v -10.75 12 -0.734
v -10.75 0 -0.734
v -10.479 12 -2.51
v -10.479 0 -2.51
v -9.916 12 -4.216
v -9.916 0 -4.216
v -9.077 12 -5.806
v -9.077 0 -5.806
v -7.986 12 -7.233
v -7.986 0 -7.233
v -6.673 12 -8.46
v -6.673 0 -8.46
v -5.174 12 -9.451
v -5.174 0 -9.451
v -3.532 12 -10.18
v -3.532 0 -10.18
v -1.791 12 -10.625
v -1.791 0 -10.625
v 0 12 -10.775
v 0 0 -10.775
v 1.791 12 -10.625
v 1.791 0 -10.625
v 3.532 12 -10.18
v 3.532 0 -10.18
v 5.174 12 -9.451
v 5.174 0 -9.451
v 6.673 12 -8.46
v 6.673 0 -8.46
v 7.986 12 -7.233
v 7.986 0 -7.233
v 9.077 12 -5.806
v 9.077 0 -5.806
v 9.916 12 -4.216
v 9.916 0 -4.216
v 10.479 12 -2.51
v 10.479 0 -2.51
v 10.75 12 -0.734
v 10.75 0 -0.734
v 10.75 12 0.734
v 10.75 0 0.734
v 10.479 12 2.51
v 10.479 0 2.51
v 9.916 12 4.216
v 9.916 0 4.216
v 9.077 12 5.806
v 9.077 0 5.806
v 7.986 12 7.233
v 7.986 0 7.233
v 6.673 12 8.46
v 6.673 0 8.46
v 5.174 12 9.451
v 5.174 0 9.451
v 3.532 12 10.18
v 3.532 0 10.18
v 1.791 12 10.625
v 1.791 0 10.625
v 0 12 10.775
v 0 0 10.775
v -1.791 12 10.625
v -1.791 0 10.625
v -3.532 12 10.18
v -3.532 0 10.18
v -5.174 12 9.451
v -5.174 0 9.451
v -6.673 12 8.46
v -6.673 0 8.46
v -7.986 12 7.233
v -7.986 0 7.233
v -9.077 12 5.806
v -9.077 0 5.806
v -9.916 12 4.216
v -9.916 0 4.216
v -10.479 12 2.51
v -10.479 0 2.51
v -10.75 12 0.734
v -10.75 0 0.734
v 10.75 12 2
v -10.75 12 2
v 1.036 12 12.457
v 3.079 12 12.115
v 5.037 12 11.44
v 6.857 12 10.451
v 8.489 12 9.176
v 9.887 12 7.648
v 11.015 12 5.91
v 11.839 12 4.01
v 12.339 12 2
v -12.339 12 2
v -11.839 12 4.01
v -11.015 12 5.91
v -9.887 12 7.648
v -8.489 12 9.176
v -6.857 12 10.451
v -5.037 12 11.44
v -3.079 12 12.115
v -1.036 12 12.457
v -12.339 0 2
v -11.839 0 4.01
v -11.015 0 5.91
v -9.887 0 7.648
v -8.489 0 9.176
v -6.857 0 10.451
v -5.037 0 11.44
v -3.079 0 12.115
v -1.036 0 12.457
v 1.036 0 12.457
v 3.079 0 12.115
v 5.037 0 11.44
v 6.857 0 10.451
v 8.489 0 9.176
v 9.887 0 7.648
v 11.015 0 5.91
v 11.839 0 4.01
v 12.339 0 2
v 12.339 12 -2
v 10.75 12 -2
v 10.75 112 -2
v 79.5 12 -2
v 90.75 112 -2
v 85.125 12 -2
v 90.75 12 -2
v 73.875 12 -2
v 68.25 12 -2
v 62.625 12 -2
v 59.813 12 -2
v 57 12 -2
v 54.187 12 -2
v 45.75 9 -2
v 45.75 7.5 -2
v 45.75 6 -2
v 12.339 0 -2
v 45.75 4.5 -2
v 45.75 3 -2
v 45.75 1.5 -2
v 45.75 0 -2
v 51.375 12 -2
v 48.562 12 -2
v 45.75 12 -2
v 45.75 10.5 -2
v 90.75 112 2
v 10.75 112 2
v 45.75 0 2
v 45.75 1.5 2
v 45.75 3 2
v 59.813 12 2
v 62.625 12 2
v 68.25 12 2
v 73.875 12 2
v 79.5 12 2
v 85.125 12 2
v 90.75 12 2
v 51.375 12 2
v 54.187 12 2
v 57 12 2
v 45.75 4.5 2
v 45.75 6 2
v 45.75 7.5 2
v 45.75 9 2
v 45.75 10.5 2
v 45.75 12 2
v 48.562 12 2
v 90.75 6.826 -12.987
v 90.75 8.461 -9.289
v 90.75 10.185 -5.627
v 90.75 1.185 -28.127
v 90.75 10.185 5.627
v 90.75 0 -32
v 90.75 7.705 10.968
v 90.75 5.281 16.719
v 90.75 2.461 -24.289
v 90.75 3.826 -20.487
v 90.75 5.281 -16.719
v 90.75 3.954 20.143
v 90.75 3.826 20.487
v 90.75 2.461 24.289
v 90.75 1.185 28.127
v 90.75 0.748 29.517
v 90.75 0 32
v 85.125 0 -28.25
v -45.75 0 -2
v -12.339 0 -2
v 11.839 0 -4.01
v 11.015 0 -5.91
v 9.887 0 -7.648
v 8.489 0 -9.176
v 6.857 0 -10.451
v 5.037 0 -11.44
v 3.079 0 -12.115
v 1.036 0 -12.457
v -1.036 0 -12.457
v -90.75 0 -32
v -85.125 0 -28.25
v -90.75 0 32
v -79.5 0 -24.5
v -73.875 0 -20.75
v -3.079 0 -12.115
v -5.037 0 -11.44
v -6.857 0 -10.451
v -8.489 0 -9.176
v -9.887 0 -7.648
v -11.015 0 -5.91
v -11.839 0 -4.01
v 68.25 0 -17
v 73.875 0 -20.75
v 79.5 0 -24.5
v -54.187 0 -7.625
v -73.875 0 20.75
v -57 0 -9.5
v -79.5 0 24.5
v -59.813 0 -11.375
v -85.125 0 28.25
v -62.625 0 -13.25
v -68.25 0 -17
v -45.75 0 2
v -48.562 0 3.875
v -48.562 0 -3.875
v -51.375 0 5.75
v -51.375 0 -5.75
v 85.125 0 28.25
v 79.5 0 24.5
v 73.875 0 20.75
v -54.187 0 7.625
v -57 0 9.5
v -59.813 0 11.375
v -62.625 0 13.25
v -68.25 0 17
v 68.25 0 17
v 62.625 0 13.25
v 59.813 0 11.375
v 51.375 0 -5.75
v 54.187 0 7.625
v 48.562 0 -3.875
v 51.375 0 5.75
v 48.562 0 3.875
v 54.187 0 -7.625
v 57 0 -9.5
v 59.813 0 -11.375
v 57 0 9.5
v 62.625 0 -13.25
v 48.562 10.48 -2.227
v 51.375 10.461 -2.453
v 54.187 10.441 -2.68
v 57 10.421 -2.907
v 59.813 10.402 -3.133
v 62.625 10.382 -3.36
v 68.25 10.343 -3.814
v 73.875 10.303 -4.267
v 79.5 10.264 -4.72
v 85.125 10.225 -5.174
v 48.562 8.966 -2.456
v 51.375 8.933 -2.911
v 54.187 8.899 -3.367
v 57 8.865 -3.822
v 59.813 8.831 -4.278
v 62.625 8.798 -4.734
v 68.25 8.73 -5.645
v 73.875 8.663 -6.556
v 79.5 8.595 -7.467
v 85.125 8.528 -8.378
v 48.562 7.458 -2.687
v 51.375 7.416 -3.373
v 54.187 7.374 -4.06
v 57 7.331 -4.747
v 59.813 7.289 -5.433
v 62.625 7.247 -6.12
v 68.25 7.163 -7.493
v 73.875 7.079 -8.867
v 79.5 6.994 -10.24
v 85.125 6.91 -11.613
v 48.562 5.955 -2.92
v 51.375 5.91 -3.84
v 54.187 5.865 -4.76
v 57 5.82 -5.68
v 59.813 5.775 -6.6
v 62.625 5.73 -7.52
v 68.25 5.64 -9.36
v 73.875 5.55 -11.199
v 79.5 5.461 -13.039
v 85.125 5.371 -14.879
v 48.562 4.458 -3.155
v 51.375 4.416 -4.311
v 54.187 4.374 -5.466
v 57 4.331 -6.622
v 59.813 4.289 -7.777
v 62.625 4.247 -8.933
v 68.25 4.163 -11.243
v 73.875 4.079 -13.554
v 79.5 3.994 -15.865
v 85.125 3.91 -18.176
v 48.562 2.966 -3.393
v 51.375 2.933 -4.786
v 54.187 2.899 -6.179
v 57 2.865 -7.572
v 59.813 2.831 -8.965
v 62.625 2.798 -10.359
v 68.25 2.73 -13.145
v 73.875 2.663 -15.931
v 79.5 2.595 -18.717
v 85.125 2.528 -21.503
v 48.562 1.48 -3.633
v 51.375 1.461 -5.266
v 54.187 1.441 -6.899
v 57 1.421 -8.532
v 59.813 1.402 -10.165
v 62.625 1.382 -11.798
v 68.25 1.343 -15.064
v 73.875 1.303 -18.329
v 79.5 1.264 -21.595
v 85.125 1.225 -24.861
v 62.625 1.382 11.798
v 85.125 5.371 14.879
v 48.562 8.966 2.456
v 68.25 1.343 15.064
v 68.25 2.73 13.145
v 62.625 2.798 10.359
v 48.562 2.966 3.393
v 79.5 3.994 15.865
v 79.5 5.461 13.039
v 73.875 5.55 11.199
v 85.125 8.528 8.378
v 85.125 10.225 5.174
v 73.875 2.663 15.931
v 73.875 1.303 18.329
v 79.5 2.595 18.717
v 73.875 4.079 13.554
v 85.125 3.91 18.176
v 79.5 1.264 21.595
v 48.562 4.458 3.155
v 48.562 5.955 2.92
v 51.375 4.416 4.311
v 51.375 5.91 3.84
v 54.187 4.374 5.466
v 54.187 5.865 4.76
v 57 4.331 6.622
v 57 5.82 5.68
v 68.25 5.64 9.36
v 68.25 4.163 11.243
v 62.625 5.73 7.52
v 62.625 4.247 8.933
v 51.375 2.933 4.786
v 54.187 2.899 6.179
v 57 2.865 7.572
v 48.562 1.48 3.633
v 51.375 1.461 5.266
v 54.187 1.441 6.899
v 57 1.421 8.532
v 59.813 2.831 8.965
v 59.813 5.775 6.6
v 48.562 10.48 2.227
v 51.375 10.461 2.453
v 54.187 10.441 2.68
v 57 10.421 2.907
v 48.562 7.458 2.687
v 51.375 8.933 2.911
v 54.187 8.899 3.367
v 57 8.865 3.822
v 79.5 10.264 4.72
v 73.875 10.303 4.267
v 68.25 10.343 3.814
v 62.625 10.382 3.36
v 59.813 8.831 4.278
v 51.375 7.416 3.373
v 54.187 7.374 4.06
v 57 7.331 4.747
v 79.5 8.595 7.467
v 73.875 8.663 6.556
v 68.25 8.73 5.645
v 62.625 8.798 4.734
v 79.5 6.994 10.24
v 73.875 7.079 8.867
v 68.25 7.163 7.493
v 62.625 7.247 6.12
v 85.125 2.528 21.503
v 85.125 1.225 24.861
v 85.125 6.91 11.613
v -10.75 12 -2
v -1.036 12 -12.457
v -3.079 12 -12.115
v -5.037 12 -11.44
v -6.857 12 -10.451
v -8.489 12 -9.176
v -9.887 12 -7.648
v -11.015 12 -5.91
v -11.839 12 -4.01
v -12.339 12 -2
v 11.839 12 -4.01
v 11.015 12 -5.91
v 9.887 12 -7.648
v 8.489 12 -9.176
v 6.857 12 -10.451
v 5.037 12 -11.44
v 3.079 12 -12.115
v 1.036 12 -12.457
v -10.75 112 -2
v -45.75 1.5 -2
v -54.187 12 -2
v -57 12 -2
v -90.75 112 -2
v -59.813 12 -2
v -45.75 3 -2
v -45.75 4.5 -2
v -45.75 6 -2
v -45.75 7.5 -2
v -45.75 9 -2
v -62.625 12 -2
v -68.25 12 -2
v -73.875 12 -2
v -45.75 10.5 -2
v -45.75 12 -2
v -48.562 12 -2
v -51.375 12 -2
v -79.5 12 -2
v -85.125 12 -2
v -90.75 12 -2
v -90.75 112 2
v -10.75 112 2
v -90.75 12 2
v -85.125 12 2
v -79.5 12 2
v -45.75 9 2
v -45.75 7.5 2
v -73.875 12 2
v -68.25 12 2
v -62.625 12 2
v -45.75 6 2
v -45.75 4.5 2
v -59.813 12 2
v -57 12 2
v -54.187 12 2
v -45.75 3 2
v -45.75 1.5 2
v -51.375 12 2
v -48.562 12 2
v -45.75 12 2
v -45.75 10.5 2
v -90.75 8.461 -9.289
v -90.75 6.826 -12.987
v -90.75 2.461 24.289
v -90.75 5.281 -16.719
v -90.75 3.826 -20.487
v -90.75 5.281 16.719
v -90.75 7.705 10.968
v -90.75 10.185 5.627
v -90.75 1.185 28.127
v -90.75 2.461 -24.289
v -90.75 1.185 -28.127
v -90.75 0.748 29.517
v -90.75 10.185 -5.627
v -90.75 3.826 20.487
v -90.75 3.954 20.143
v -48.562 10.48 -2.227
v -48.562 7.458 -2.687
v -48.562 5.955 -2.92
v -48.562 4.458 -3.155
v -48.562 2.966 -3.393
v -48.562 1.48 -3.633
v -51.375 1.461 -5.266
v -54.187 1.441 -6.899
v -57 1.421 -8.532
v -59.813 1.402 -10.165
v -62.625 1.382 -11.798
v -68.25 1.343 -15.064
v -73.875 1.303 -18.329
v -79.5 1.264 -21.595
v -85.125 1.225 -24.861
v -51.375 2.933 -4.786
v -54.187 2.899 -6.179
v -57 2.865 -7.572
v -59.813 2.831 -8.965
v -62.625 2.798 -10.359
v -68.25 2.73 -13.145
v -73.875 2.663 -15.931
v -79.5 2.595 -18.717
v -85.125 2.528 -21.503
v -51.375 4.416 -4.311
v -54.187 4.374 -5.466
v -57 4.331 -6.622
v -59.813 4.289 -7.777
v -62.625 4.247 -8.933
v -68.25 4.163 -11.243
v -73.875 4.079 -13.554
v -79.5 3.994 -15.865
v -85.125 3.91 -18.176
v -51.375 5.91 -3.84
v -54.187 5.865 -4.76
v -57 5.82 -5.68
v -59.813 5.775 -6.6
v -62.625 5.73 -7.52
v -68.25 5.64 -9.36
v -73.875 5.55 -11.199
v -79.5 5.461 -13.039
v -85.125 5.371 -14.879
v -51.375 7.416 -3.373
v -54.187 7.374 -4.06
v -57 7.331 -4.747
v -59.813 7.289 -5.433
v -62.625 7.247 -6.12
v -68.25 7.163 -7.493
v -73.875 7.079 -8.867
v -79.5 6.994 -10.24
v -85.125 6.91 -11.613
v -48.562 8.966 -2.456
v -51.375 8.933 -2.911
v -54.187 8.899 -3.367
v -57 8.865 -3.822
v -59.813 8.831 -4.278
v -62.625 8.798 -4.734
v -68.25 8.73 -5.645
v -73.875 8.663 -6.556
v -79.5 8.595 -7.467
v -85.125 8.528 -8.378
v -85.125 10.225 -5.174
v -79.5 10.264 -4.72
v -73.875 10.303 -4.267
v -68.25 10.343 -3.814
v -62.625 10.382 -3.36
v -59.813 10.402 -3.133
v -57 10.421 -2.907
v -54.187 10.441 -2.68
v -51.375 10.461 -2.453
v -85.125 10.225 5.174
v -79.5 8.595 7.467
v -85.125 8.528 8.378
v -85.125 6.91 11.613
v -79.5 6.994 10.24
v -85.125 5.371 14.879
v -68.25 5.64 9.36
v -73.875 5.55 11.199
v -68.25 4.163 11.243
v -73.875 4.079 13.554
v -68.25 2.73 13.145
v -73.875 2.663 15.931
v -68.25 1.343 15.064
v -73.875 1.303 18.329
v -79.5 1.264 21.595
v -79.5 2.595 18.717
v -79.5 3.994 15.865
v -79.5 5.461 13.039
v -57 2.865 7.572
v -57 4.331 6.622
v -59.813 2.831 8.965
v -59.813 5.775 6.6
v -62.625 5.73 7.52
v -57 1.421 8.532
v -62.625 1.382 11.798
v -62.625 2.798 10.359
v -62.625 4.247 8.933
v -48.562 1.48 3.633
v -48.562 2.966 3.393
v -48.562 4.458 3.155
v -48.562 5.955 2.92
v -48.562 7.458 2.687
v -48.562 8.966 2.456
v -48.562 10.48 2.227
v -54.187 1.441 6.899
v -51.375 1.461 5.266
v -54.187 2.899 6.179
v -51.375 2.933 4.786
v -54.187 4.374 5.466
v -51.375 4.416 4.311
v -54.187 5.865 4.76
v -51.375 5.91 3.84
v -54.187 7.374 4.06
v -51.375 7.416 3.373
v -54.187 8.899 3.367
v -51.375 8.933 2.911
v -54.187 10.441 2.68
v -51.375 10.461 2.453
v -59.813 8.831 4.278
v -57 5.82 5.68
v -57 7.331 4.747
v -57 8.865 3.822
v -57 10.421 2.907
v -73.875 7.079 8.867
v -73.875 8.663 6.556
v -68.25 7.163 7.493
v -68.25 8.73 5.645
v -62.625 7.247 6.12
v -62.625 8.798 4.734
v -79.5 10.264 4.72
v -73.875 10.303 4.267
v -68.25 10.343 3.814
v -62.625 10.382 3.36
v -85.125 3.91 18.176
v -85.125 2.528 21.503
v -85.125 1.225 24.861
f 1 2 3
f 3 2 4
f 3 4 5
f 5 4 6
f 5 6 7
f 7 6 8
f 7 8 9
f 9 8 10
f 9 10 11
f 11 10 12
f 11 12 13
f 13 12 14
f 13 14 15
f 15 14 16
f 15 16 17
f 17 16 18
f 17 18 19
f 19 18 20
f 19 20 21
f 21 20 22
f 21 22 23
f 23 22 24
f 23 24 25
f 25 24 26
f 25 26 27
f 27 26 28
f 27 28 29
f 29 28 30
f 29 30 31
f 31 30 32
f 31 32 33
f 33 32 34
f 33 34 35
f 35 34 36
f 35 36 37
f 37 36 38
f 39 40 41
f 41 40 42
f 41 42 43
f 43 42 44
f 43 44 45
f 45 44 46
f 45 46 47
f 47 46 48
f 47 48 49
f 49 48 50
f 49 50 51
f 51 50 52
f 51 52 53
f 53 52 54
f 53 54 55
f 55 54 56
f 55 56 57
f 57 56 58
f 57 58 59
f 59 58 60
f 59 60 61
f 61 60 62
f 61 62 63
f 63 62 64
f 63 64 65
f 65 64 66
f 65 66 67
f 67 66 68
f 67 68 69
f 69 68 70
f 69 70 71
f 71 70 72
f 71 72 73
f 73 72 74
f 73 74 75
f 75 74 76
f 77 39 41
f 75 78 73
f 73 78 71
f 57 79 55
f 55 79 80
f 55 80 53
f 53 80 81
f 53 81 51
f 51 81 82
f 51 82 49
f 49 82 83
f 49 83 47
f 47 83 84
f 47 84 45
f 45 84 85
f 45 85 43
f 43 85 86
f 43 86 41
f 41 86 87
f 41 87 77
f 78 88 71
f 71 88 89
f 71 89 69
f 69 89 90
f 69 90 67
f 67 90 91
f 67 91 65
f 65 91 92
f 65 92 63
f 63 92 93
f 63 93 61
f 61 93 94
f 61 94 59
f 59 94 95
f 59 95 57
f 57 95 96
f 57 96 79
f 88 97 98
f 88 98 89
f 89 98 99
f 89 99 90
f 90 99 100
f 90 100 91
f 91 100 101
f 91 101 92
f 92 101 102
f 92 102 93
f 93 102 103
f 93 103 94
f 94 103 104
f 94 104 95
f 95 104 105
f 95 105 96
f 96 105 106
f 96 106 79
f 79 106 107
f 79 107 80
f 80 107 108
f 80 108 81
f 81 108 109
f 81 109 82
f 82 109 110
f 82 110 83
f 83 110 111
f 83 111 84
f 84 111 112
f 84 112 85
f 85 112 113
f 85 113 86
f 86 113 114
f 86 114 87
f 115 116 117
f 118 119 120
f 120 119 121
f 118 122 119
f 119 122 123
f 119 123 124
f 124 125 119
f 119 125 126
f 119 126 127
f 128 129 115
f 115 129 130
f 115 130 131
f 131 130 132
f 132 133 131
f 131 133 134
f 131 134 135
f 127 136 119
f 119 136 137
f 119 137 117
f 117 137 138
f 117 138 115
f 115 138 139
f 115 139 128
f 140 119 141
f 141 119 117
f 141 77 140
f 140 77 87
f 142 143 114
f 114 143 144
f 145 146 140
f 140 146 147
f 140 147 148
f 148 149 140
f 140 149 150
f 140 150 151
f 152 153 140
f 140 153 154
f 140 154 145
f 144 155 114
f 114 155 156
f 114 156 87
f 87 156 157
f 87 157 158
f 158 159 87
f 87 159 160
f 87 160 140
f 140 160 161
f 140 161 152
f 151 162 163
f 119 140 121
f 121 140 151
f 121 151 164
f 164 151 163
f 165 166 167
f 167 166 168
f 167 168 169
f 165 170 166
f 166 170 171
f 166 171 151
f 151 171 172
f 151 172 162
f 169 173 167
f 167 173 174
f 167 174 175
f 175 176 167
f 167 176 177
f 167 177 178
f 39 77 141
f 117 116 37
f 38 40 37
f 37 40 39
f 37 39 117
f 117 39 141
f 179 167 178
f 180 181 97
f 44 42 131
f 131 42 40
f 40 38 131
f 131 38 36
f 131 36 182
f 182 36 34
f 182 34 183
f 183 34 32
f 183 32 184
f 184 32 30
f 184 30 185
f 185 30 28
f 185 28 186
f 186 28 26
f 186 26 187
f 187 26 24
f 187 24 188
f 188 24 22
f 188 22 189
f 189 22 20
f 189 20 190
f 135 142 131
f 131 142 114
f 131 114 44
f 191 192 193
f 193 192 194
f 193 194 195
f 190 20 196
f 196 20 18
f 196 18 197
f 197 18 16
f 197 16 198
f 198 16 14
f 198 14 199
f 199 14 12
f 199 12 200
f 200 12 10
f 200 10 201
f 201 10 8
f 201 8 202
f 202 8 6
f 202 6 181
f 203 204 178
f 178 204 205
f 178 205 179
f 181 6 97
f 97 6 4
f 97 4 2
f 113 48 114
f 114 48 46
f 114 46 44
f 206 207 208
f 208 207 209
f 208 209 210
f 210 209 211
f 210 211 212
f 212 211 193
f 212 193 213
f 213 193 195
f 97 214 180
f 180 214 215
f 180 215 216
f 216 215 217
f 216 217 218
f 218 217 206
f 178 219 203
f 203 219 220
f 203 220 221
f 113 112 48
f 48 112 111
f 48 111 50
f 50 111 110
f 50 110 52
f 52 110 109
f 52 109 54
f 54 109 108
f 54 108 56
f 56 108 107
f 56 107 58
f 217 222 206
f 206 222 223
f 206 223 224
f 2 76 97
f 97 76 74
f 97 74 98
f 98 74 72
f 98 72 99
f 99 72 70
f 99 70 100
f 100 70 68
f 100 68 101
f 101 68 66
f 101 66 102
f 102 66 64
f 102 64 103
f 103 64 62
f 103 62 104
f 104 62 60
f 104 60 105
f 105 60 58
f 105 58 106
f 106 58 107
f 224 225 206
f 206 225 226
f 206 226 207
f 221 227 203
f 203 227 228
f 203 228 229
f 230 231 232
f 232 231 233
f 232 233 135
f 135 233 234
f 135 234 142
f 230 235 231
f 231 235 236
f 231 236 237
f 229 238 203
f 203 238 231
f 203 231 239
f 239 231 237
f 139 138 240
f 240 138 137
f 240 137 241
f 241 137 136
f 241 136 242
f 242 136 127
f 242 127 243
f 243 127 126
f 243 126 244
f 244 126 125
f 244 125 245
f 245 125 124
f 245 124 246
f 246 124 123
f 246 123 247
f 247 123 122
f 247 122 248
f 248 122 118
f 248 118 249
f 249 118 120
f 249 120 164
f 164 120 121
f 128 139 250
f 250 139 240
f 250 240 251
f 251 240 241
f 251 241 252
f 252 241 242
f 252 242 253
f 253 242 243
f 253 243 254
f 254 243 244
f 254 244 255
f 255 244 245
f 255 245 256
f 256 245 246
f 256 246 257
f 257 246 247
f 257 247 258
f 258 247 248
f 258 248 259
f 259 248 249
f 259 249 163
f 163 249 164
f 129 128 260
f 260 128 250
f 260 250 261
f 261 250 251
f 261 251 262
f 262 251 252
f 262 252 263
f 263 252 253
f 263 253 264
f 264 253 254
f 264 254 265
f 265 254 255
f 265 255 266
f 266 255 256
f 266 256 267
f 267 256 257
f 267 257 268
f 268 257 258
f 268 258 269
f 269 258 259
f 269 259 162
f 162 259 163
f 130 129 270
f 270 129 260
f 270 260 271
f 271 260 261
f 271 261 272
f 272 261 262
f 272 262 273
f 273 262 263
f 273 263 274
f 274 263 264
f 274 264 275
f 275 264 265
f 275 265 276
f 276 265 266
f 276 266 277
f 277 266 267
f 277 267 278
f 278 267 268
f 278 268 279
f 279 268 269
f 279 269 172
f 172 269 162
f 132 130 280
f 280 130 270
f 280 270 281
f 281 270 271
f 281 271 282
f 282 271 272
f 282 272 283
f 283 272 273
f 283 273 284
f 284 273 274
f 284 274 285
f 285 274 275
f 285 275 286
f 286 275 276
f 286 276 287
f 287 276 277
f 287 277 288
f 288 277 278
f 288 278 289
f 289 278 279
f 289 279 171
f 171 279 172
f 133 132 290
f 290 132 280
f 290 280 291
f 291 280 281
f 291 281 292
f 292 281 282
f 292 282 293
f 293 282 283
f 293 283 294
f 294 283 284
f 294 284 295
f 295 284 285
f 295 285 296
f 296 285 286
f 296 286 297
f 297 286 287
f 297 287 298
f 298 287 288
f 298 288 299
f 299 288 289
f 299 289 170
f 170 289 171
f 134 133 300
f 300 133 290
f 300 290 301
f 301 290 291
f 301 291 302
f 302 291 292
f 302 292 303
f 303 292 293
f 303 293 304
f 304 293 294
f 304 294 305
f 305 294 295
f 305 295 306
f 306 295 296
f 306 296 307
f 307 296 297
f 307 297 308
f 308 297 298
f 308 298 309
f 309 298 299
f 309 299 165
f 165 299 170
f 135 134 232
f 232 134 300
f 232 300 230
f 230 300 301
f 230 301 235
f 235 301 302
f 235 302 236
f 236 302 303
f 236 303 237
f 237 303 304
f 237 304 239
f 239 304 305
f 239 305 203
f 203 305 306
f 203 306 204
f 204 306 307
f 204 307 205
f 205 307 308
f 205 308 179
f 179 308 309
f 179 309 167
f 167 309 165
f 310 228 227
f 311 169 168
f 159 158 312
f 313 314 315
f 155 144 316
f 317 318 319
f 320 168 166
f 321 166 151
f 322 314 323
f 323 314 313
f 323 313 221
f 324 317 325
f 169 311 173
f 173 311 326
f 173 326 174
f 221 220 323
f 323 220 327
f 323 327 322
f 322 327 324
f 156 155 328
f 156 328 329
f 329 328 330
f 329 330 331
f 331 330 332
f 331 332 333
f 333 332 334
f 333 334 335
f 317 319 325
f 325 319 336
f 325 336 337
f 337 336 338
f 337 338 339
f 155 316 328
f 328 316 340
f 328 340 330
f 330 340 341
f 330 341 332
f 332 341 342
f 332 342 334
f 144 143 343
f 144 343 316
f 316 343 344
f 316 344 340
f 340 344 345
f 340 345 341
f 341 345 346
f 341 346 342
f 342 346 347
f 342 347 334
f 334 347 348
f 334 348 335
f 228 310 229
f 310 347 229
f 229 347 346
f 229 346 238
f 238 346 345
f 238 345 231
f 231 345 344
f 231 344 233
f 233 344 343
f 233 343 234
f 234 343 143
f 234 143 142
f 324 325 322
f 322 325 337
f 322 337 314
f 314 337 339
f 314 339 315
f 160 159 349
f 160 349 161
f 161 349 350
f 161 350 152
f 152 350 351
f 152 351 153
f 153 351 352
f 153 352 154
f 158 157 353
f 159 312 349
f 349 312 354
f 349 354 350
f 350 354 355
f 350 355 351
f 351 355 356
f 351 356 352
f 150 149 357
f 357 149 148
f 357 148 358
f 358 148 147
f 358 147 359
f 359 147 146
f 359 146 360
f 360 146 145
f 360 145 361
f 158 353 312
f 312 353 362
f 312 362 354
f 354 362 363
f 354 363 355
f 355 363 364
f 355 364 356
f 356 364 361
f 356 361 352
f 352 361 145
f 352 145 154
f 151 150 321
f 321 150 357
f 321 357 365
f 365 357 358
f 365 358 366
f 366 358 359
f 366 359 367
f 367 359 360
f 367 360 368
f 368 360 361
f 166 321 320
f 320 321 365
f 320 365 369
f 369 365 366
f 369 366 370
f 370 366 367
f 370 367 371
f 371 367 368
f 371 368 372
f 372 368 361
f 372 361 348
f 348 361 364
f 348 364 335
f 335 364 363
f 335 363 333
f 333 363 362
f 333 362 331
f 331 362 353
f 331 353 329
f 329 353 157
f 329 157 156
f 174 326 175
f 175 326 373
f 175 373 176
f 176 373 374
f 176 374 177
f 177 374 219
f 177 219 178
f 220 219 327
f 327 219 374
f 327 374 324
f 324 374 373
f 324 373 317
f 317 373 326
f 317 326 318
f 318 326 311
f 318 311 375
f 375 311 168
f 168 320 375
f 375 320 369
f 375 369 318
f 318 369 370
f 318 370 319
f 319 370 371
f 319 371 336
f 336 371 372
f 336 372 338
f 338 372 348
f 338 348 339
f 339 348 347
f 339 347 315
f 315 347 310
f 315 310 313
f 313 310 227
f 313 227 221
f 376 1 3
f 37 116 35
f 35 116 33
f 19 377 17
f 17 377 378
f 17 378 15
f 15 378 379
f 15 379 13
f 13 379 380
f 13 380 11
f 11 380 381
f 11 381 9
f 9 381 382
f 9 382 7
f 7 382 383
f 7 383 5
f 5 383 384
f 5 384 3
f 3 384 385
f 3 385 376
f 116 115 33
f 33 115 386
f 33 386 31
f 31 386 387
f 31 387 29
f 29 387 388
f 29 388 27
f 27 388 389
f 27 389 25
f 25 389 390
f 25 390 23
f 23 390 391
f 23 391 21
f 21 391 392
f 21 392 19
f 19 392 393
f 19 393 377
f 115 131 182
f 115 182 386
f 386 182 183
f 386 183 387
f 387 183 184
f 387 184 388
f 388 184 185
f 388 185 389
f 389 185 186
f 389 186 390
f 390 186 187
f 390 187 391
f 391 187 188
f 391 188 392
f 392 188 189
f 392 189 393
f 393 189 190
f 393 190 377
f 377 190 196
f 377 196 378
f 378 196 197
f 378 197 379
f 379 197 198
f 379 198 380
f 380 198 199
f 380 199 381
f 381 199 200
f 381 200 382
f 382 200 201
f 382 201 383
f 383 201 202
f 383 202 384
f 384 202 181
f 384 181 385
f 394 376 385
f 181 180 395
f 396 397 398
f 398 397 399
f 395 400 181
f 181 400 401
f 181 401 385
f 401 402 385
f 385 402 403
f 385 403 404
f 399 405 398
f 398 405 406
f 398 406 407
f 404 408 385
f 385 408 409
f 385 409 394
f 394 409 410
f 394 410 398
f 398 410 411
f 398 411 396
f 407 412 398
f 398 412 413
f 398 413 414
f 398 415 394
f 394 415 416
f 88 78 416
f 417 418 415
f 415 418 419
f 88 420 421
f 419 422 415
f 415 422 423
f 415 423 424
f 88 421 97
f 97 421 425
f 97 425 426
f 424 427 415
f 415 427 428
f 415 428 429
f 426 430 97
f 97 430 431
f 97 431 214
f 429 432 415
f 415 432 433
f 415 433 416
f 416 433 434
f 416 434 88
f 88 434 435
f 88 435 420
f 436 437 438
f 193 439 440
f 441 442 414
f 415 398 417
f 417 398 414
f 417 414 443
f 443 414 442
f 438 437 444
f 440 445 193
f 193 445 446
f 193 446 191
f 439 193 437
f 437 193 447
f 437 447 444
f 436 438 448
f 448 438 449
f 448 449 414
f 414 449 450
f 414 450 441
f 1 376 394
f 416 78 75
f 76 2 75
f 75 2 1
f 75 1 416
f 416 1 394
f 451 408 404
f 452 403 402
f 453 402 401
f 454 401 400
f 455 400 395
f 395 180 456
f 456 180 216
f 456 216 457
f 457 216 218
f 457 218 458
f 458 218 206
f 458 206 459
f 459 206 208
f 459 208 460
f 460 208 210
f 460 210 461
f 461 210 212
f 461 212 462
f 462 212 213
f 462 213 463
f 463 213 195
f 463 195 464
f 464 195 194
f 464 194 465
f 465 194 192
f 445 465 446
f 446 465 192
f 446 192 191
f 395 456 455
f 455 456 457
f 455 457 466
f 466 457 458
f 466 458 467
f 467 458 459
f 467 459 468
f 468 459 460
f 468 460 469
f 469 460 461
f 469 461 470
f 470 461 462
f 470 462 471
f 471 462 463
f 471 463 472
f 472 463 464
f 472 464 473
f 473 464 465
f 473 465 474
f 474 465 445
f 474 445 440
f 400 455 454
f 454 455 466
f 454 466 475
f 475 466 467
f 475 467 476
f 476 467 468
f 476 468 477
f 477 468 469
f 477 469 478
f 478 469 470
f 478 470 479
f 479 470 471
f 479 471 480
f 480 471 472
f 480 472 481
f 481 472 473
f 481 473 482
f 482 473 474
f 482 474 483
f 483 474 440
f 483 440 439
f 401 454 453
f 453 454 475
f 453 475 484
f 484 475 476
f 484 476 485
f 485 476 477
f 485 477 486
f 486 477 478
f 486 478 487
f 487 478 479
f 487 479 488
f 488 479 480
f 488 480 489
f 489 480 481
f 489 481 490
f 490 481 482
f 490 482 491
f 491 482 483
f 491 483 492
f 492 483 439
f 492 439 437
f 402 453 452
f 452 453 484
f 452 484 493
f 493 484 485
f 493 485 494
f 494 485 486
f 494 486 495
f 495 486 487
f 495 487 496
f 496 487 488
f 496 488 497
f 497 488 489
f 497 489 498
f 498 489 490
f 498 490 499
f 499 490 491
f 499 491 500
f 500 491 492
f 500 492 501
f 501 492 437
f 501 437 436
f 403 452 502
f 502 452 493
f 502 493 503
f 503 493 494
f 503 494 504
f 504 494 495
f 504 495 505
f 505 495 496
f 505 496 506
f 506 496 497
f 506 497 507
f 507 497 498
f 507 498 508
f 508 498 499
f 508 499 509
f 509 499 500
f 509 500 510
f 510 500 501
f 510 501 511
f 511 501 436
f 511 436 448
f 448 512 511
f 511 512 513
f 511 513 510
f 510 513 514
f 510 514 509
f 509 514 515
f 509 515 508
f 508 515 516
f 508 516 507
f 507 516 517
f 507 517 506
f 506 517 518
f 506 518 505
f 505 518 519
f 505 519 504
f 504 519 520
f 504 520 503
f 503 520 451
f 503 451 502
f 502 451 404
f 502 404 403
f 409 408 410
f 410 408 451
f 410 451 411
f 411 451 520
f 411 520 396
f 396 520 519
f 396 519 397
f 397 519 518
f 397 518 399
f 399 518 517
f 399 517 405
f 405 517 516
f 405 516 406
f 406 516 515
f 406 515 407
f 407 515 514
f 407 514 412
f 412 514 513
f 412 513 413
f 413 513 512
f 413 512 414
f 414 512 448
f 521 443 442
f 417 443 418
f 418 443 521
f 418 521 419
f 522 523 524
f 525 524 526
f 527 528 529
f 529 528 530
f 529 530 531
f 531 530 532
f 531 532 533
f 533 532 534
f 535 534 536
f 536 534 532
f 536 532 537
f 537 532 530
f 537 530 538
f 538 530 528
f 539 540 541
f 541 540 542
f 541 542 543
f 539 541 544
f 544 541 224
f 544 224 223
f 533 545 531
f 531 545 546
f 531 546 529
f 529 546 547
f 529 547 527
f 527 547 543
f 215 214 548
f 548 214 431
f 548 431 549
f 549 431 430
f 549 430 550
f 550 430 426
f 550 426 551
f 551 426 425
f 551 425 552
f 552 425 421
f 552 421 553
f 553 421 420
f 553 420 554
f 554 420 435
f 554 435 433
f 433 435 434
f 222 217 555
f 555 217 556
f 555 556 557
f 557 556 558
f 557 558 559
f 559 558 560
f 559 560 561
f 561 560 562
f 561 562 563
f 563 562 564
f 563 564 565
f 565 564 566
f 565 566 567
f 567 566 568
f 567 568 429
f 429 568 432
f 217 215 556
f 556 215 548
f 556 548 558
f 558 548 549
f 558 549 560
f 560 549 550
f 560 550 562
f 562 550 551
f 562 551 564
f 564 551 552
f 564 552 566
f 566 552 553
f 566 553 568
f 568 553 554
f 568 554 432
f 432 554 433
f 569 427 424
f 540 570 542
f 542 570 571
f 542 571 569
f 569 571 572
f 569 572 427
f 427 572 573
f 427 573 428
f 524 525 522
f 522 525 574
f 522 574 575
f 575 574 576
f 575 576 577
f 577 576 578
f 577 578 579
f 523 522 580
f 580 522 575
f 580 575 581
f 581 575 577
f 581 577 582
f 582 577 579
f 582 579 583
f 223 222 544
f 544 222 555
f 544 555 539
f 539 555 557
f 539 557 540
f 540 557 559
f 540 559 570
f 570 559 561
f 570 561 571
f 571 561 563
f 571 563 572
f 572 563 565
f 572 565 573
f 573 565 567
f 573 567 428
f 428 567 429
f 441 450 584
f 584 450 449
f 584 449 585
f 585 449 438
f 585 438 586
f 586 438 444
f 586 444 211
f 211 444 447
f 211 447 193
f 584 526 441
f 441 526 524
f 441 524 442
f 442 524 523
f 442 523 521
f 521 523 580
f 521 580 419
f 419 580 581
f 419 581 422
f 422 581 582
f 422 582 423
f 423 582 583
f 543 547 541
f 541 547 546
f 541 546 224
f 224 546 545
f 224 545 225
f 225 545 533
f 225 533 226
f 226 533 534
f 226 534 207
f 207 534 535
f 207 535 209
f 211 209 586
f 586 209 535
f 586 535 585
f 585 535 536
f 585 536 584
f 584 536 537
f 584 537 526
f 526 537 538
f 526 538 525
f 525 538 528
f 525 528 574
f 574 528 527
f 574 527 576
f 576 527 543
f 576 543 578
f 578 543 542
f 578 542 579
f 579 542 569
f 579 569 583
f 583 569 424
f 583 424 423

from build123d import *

# Parameters (mm, degrees)
SKETCH1_W           = 4
SKETCH1_H           = 100
BOSS_EXTRUDE1_DEPTH = 80
SKETCH6_W           = 4
SKETCH6_H           = 12
BOSS_EXTRUDE2_DEPTH = 35
SKETCH14_R          = 12.5
SKETCH14_R_2        = 10.775
BOSS_EXTRUDE3_DEPTH = 12


with BuildPart() as part:
    # Sketch1 → Boss-Extrude1 (new body)
    with BuildSketch(Plane(origin=(10.75, 0, 0), x_dir=(0, 0, -1), z_dir=(1, 0, 0))):
        with Locations((0, 62)):
            Rectangle(SKETCH1_W, SKETCH1_H)
    extrude(amount=BOSS_EXTRUDE1_DEPTH)

    # Sketch6 → Boss-Extrude2 (add)
    with BuildSketch(Plane.ZY.offset(-10.75)):
        with Locations((0, 6)):
            Rectangle(SKETCH6_W, SKETCH6_H)
    extrude(amount=-BOSS_EXTRUDE2_DEPTH)

    # Sketch7 → Loft3 section 0
    with BuildSketch(Plane(origin=(45.75, 0, 0), x_dir=(0, 0, -1), z_dir=(1, 0, 0))):
        with BuildLine():
            Line((-2, 12), (2, 12))
            Line((2, 12), (2, 0))
            Line((2, 0), (-2, 0))
            Line((-2, 0), (-2, 12))
        make_face()
    # Sketch5 → Loft3 section 1
    with BuildSketch(Plane(origin=(90.75, 0, 0), x_dir=(0, 0, -1), z_dir=(1, 0, 0))):
        with BuildLine():
            Line((-2, 12), (2, 12))
            add(Edge.make_bspline(
                [(2, 12), (16.438366027, 4.561354626), (32, 0)],
                knots=[0, 0, 0, 1, 1, 1], degree=2))
            Line((32, 0), (-32, 0))
            add(Edge.make_bspline(
                [(-2, 12), (-16.438366027, 4.561354626), (-32, 0)],
                knots=[0, 0, 0, 1, 1, 1], degree=2))
        make_face()
    loft()


with BuildPart() as body_2:
    # Mirror3: mirrored copy
    add(part.part.mirror(Plane(origin=(0, 0, 0), x_dir=(0, 0, 1), z_dir=(1, 0, 0))))


with BuildPart() as part_1:
    add(part.part)

    add(body_2.part)  # Boss-Extrude3 merges body 2
    # Sketch14 → Boss-Extrude3 (add)
    with BuildSketch(Plane(origin=(0, 0, 0), x_dir=(1, 0, 0), z_dir=(0, 1, 0))):
        Circle(SKETCH14_R)
        Circle(SKETCH14_R_2, mode=Mode.SUBTRACT)
    extrude(amount=BOSS_EXTRUDE3_DEPTH)


solid = part_1.part
